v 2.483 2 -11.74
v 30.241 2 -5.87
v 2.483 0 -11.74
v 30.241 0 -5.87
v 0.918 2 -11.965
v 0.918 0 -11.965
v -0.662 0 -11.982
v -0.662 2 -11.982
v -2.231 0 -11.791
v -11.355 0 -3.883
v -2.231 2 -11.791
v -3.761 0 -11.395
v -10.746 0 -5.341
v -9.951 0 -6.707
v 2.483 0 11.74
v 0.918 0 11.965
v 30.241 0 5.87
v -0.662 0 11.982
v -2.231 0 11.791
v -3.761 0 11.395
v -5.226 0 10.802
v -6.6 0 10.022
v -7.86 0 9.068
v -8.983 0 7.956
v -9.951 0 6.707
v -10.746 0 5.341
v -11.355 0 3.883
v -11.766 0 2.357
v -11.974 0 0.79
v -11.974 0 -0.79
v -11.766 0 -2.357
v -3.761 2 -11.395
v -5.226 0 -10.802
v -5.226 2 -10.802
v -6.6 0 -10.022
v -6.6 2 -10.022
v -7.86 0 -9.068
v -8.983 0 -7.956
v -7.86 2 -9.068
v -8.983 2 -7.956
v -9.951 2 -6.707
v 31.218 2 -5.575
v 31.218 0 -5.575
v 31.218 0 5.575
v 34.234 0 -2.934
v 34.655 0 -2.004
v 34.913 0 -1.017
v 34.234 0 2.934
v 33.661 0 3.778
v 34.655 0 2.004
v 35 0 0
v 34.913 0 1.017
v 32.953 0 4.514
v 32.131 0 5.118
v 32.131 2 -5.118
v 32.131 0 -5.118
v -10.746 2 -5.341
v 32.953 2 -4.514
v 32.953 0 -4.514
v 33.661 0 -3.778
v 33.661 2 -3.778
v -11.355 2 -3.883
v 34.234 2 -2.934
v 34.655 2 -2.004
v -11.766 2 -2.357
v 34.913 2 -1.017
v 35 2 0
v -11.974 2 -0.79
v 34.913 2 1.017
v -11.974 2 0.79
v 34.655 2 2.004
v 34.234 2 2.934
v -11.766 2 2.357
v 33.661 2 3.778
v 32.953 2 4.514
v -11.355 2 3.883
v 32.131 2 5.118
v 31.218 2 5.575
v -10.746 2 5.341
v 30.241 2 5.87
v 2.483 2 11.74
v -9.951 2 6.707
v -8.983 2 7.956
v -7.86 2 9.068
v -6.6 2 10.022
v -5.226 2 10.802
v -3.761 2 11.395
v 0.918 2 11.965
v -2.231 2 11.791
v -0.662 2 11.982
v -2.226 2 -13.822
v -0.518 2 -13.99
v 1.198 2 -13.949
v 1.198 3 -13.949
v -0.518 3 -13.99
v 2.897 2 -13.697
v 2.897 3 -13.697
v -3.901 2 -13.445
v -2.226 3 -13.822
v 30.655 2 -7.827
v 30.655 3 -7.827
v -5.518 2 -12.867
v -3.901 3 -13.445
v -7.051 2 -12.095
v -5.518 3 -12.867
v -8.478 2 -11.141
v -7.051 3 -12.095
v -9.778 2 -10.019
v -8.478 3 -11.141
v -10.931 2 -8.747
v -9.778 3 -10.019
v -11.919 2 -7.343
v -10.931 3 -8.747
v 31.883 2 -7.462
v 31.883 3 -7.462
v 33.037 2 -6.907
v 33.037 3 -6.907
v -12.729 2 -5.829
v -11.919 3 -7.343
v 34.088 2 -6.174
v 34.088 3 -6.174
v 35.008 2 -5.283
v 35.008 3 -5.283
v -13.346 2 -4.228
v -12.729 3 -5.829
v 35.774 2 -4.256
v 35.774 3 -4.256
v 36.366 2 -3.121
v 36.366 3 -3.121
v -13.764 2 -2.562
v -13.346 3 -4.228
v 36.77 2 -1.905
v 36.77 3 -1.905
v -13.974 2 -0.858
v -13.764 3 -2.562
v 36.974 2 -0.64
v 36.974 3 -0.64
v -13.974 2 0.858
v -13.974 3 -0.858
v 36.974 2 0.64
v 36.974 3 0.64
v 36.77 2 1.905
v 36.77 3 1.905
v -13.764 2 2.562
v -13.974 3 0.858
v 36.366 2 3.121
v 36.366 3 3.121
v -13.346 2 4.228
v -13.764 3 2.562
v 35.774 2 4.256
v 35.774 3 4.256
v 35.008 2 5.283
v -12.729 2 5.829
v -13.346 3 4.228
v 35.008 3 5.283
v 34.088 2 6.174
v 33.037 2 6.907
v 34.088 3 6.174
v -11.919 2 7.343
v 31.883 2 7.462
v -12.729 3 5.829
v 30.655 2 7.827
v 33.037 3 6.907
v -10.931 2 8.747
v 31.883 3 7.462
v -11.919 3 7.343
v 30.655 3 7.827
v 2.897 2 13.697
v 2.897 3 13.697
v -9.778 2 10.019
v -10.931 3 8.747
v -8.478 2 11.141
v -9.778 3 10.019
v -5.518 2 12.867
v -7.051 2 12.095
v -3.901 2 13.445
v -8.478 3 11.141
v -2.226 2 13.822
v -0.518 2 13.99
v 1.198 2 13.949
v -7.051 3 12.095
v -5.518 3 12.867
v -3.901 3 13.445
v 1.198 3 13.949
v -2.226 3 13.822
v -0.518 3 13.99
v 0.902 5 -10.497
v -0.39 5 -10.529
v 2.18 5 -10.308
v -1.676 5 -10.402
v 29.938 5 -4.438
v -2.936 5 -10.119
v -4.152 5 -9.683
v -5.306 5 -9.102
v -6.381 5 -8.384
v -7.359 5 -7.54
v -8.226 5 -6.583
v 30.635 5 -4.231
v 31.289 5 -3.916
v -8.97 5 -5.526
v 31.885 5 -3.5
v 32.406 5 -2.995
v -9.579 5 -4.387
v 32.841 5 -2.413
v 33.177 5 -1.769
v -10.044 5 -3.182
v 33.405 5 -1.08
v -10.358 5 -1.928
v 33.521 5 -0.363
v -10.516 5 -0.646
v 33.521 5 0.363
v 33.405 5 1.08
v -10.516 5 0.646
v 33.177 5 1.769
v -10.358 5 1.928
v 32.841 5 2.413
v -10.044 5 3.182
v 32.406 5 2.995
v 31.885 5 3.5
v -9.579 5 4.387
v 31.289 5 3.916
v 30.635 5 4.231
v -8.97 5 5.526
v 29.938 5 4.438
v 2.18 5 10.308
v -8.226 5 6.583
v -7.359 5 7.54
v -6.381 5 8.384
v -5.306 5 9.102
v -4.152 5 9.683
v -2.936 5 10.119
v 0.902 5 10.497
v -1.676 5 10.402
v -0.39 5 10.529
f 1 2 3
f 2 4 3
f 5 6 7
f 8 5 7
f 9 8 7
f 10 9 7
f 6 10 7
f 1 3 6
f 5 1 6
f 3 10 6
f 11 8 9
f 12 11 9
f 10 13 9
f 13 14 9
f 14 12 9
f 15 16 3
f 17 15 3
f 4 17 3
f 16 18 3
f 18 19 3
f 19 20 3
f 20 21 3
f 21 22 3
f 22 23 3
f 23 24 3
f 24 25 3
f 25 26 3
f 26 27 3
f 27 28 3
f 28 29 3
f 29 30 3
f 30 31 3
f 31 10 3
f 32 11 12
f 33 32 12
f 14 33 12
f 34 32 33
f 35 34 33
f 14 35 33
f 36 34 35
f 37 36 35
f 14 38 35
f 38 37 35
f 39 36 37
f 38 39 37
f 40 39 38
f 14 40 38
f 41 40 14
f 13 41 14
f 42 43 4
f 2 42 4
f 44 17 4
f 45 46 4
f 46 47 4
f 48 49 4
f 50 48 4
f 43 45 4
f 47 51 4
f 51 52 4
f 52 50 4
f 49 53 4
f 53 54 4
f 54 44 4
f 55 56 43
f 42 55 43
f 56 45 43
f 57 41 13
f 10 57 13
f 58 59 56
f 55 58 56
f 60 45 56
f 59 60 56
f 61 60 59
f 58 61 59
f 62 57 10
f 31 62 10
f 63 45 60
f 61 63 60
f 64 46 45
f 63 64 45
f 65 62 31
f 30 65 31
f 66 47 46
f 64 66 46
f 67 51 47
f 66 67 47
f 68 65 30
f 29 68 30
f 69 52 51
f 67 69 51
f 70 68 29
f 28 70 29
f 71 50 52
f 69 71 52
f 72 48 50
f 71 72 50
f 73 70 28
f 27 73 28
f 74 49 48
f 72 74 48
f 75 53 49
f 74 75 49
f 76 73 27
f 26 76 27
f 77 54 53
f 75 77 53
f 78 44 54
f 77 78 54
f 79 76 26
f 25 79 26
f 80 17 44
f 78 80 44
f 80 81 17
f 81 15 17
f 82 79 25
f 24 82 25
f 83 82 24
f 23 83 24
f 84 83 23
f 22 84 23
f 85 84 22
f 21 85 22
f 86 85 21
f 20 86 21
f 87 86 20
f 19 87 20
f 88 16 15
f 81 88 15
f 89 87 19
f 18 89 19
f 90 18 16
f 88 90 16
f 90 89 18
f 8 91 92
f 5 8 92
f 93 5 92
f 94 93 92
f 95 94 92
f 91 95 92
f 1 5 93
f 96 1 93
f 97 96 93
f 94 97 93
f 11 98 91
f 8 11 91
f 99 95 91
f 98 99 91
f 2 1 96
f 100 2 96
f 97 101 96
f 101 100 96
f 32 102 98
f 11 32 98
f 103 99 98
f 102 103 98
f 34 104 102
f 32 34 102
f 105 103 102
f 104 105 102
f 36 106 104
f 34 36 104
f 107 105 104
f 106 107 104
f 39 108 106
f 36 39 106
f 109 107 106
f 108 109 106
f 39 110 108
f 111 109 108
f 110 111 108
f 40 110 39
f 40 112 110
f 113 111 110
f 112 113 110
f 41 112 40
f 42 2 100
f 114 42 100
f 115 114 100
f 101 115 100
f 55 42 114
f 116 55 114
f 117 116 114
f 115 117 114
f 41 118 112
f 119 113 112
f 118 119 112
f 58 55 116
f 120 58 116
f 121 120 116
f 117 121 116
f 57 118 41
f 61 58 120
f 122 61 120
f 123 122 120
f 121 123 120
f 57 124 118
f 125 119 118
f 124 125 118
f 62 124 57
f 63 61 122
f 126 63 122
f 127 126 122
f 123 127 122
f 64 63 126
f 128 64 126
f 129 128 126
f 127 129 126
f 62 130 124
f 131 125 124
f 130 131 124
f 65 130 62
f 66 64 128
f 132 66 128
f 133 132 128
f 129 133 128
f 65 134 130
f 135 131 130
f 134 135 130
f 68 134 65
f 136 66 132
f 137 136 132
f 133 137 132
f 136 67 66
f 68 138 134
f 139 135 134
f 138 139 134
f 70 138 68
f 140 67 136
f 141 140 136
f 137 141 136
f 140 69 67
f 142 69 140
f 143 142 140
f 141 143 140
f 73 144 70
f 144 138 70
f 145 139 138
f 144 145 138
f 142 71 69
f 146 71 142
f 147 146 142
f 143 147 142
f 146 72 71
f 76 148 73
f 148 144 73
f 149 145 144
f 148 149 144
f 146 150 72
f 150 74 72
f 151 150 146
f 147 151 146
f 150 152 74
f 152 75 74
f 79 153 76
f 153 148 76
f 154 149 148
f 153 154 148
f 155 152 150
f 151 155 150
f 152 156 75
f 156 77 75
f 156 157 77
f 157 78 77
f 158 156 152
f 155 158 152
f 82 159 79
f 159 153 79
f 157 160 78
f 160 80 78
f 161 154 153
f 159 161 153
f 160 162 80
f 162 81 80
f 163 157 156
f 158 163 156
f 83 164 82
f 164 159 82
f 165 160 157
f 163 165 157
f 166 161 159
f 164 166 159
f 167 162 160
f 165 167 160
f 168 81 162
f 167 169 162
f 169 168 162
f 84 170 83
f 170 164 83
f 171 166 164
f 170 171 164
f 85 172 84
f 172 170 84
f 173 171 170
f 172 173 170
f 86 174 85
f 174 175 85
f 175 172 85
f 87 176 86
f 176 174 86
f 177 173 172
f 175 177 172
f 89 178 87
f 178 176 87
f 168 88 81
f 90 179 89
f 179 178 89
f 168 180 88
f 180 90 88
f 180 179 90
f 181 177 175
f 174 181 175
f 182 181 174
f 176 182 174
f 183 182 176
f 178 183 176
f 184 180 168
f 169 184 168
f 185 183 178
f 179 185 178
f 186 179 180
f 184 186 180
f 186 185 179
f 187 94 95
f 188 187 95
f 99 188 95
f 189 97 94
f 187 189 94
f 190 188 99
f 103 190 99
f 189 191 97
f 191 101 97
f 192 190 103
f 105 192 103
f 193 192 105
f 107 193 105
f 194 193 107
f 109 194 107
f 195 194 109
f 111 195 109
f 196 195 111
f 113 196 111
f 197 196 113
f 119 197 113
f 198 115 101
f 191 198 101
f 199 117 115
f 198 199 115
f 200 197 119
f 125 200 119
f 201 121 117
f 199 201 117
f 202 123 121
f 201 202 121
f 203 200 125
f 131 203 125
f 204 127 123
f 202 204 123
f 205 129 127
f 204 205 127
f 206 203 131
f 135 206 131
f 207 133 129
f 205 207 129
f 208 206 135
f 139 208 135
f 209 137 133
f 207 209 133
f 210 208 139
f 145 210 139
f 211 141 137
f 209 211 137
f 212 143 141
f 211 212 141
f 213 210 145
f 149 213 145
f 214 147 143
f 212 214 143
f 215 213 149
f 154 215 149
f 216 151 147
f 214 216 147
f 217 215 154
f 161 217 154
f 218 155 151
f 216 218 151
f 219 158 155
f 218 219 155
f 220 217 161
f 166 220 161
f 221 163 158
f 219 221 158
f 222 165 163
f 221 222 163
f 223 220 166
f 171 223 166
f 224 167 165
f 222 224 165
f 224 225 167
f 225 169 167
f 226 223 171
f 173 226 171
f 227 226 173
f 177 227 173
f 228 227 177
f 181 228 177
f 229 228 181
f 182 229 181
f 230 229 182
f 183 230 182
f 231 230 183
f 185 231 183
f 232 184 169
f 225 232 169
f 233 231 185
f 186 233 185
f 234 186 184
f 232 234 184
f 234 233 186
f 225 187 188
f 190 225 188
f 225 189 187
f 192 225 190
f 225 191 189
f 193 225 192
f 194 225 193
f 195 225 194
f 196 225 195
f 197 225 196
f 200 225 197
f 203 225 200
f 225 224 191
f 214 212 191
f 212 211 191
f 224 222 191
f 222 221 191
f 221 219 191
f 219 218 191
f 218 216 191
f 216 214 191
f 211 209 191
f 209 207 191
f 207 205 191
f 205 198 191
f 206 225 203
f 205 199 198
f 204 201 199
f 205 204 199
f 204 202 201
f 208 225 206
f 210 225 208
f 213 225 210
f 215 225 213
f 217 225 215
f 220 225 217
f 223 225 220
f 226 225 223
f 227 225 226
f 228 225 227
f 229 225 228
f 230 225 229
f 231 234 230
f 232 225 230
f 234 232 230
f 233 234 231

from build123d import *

# Parameters (mm, degrees)
BOSS_EXTRUDE1_DEPTH = 2
BOSS_EXTRUDE2_DEPTH = 1
BOSS_EXTRUDE3_DEPTH = 2
BOSS_EXTRUDE3_TAPER = 60


with BuildPart() as part:
    # Sketch1 → Boss-Extrude1 (new body)
    with BuildSketch(Plane(origin=(0, 0, 0), x_dir=(1, 0, 0), z_dir=(0, 1, 0))):
        with BuildLine():
            Line((2.482758621, 11.740353897), (30.24137931, 5.870176949))
            ThreePointArc((30.24137931, 5.870176949), (35, 0), (30.24137931, -5.870176949))
            Line((30.24137931, -5.870176949), (2.482758621, -11.740353897))
            ThreePointArc((2.482758621, -11.740353897), (-12, 0), (2.482758621, 11.740353897))
        make_face()
    extrude(amount=BOSS_EXTRUDE1_DEPTH)

    # Sketch2 → Boss-Extrude2 (add)
    with BuildSketch(Plane(origin=(0, 2, 0), x_dir=(1, 0, 0), z_dir=(0, 1, 0))):
        with BuildLine():
            Line((30.655172414, 7.826902598), (2.896551724, 13.697079547))
            ThreePointArc((2.896551724, 13.697079547), (-14, 0), (2.896551724, -13.697079547))
            Line((2.896551724, -13.697079547), (30.655172414, -7.826902598))
            ThreePointArc((30.655172414, -7.826902598), (37, 0), (30.655172414, 7.826902598))
        make_face()
    extrude(amount=BOSS_EXTRUDE2_DEPTH)

    # Sketch3 → Boss-Extrude3 (add)
    with BuildSketch(Plane(origin=(0, 3, 0), x_dir=(1, 0, 0), z_dir=(0, 1, 0))):
        with BuildLine():
            Line((30.655172414, 7.826902598), (2.896551724, 13.697079547))
            ThreePointArc((2.896551724, 13.697079547), (-14, 0), (2.896551724, -13.697079547))
            Line((2.896551724, -13.697079547), (30.655172414, -7.826902598))
            ThreePointArc((30.655172414, -7.826902598), (37, 0), (30.655172414, 7.826902598))
        make_face()
    extrude(amount=BOSS_EXTRUDE3_DEPTH, taper=BOSS_EXTRUDE3_TAPER)


solid = part.part
